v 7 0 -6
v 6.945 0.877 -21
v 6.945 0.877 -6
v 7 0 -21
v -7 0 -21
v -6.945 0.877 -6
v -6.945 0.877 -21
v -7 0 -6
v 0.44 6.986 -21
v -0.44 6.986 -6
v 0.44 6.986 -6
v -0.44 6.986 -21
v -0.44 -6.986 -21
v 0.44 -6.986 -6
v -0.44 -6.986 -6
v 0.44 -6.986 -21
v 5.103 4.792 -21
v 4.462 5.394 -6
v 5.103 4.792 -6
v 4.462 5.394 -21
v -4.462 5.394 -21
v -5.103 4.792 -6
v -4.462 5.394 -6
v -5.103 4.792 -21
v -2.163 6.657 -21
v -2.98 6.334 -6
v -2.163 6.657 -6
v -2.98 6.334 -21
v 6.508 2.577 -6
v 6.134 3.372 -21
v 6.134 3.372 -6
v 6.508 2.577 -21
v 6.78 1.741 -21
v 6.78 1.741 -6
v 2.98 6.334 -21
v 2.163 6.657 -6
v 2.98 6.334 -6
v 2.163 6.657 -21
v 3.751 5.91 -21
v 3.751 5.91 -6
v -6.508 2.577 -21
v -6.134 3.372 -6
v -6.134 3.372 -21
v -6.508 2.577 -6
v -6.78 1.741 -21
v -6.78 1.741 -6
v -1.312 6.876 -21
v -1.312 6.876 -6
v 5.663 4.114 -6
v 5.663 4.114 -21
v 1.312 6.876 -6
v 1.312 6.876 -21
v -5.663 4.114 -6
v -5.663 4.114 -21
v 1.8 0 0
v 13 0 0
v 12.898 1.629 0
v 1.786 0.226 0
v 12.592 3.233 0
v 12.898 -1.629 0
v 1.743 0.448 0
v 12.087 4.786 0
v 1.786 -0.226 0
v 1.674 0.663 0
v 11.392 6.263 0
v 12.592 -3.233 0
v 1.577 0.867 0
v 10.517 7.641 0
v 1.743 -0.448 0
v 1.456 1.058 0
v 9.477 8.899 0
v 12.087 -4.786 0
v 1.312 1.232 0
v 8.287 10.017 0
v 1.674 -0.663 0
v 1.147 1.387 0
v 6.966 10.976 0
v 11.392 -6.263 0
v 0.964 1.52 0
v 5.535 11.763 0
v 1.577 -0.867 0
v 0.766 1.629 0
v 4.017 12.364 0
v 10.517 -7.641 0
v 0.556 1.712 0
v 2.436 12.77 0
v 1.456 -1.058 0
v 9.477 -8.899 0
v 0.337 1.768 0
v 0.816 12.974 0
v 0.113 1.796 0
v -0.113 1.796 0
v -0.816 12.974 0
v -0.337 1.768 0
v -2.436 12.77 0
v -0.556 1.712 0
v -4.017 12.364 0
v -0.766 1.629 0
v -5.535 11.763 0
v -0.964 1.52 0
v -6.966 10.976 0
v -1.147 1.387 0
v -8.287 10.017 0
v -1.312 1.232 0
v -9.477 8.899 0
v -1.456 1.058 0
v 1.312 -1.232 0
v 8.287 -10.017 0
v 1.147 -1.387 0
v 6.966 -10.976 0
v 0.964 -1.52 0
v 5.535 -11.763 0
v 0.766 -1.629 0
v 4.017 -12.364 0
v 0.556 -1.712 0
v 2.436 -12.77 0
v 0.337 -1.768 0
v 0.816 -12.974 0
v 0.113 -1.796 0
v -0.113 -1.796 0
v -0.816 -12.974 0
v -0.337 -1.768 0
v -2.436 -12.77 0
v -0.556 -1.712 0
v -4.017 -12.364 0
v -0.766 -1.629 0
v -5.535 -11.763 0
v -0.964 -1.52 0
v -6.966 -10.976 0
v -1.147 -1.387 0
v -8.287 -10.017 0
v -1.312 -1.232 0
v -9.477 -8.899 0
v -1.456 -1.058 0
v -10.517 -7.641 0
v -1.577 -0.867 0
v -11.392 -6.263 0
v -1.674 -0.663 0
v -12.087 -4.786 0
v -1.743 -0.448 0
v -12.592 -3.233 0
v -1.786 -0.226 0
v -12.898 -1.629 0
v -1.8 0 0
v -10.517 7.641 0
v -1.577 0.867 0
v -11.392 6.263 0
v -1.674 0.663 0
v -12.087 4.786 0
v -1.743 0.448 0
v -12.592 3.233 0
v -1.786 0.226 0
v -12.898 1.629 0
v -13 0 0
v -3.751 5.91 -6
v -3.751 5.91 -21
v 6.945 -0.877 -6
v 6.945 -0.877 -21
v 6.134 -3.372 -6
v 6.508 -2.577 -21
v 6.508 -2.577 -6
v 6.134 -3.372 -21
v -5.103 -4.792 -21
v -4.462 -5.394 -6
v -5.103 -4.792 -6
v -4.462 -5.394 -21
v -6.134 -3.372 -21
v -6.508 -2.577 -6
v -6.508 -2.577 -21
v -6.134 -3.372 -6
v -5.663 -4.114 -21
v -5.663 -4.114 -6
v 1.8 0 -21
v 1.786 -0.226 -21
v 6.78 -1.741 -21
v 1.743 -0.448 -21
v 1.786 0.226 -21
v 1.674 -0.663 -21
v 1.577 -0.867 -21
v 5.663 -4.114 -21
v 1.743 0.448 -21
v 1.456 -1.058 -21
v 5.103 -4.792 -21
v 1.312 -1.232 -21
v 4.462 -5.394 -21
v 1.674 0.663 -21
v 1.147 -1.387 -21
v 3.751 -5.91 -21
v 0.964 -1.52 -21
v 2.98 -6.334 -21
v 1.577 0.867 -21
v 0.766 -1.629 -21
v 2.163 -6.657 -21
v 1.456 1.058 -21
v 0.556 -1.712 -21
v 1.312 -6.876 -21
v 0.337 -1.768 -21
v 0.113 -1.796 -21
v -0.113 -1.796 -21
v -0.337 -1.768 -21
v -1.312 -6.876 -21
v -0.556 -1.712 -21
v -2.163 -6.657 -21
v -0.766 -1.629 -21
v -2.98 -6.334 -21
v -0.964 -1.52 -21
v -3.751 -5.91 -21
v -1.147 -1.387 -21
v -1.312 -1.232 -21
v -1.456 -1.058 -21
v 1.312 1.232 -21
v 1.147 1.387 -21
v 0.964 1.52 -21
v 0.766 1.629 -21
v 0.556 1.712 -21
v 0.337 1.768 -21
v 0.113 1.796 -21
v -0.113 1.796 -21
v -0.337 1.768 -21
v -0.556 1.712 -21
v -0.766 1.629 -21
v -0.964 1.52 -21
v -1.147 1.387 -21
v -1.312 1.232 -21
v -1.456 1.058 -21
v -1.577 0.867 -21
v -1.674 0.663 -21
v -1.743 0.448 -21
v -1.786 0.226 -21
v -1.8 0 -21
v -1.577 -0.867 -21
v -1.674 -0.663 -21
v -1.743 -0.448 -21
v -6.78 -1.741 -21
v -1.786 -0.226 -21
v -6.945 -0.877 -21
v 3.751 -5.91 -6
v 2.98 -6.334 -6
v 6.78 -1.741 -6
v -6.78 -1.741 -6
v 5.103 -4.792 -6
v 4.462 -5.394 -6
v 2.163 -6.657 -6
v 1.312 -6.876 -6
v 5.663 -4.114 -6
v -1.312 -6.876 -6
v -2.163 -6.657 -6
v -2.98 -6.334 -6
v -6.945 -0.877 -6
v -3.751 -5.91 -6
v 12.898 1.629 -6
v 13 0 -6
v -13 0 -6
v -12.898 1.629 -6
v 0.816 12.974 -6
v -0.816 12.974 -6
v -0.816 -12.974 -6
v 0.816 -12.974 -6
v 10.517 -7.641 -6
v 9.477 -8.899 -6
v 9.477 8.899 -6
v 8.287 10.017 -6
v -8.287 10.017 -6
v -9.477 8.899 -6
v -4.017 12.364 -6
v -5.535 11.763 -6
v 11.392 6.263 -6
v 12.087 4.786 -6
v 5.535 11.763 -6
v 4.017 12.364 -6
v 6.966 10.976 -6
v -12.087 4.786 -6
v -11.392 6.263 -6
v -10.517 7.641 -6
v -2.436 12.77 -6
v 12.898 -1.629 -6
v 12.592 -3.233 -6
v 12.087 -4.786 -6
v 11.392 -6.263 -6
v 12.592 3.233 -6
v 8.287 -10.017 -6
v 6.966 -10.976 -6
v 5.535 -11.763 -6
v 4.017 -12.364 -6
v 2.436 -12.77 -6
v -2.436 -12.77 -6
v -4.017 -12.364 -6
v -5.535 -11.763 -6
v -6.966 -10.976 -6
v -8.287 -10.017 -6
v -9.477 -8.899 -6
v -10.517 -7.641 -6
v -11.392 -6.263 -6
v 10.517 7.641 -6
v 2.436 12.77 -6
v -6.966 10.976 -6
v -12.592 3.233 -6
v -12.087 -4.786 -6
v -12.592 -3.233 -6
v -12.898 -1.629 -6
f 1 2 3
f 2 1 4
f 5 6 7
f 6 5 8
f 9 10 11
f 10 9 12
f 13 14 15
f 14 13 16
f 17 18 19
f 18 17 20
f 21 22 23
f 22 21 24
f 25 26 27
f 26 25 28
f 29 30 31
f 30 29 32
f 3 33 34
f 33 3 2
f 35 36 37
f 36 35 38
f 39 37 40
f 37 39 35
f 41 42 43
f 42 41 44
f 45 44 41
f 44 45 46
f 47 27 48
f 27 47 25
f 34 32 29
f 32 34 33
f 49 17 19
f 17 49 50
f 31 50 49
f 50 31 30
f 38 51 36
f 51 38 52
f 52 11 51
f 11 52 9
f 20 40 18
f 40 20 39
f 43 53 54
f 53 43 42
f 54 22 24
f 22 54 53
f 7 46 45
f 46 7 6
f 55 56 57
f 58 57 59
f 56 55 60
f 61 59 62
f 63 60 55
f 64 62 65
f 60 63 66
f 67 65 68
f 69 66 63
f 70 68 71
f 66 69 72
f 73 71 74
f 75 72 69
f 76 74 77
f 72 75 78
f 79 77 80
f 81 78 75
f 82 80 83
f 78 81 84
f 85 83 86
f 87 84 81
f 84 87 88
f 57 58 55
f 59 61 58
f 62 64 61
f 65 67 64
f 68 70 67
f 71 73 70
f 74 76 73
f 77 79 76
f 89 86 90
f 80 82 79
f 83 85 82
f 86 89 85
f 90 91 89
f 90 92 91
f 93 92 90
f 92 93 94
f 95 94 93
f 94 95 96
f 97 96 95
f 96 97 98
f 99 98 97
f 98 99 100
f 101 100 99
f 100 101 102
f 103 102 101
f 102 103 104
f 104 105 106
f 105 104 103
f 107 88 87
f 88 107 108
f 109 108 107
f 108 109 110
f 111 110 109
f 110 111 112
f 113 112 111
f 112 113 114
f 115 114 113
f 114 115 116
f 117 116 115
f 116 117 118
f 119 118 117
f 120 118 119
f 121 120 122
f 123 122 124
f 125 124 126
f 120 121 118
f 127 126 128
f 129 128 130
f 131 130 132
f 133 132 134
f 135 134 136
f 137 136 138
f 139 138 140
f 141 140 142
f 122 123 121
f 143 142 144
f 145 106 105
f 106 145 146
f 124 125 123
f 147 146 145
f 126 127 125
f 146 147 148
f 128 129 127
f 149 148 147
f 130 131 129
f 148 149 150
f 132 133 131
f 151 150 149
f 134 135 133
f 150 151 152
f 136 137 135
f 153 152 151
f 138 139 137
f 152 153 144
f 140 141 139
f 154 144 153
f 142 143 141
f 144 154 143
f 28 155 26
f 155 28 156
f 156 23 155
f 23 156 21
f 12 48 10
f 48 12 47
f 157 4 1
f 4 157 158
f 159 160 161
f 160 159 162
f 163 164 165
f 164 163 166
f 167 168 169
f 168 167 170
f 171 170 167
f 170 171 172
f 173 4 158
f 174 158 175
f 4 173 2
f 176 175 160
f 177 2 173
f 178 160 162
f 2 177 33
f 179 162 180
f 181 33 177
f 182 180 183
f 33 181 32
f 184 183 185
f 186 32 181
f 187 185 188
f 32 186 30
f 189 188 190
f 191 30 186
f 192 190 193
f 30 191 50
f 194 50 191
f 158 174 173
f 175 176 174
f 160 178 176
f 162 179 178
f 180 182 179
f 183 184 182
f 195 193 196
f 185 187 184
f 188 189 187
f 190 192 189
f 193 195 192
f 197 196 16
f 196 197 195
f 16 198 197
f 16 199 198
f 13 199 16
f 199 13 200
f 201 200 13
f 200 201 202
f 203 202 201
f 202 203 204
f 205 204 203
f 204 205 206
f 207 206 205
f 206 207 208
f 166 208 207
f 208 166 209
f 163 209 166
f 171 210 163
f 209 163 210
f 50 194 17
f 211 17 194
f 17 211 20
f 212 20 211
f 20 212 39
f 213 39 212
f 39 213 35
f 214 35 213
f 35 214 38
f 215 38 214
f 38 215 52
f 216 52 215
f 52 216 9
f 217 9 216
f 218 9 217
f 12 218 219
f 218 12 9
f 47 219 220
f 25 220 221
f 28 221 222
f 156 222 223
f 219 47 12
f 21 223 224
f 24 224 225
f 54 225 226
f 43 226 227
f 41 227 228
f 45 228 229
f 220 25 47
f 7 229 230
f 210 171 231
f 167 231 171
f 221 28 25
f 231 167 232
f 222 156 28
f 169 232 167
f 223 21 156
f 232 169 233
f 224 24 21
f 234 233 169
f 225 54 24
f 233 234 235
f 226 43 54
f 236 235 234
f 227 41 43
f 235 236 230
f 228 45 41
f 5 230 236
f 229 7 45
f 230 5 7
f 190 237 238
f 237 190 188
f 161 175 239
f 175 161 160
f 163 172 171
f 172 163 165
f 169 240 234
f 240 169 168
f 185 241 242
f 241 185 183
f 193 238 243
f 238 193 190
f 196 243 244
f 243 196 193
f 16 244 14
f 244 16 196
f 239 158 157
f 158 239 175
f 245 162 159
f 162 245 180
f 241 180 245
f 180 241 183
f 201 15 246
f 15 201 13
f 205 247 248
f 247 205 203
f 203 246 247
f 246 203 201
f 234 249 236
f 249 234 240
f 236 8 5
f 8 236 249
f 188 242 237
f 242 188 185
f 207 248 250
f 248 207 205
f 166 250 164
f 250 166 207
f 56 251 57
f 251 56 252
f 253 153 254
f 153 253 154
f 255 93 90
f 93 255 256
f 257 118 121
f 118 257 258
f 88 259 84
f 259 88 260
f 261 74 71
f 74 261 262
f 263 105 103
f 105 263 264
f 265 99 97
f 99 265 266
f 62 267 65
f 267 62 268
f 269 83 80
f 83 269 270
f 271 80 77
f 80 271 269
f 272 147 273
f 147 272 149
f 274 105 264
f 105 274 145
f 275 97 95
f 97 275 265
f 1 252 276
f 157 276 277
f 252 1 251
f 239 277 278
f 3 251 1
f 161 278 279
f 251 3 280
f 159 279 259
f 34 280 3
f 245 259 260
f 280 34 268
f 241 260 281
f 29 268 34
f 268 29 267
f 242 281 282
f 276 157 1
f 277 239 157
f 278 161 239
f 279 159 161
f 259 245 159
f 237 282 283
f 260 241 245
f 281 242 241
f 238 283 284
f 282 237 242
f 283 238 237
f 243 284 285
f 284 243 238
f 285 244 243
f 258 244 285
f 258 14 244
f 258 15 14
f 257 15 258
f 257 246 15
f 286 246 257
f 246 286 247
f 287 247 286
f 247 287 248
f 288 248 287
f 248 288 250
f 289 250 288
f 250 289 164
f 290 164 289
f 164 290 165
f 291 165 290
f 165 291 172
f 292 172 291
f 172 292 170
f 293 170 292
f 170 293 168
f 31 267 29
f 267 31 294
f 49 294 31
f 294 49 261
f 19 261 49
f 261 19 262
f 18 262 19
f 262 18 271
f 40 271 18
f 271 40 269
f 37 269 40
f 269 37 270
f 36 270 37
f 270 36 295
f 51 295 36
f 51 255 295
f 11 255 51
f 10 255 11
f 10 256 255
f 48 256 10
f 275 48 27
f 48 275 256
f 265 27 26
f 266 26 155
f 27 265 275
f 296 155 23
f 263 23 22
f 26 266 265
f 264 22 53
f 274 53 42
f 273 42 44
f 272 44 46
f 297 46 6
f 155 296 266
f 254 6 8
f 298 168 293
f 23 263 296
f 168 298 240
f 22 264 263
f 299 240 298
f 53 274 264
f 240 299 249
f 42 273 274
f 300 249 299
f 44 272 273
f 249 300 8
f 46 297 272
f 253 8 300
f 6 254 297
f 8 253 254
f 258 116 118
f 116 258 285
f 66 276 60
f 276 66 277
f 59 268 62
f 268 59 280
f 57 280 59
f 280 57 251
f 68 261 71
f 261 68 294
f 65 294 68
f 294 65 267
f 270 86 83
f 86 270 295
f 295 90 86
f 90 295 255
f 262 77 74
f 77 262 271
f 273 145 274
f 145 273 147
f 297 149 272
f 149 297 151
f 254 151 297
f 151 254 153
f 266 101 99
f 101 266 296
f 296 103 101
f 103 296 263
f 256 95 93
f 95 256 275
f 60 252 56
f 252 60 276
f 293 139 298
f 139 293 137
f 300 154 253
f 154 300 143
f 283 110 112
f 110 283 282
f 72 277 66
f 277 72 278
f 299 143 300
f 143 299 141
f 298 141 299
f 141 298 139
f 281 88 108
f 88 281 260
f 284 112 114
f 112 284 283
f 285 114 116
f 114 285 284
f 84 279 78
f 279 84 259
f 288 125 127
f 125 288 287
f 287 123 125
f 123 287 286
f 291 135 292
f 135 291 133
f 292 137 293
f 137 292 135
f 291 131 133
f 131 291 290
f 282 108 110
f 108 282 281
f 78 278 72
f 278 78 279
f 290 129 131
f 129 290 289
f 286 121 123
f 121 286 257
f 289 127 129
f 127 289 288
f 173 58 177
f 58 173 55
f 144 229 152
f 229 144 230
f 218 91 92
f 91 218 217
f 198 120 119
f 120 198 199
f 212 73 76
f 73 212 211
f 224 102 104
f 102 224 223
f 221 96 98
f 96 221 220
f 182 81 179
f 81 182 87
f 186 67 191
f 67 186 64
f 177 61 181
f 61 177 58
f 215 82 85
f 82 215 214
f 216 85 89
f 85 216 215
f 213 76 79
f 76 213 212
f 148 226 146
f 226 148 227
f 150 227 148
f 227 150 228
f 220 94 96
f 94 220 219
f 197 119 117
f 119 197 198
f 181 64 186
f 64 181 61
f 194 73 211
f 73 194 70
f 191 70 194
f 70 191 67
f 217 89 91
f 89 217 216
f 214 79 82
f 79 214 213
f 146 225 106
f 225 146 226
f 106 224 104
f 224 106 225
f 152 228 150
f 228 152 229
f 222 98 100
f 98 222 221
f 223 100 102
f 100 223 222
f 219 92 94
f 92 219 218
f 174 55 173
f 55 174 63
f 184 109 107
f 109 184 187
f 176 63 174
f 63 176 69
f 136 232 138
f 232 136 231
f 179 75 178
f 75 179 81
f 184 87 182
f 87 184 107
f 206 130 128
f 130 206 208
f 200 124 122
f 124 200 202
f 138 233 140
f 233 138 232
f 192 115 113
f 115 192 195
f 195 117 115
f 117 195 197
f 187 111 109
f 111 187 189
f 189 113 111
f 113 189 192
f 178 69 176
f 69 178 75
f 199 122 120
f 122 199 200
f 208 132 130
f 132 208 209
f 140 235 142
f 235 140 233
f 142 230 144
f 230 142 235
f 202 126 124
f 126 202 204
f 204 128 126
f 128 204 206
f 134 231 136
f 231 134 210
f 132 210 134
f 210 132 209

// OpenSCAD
$fn = 50;


difference() {
	union() {
		translate(v = [0, 0, -21.0000000000]) {
			cylinder(h = 21, r = 7.0000000000);
		}
		translate(v = [0, 0, -6.0000000000]) {
			cylinder(h = 6, r = 13.0000000000);
		}
	}
	union() {
		#translate(v = [0, 0, -21]) {
			cylinder(h = 21, r = 1.8000000000);
		}
	}
}
